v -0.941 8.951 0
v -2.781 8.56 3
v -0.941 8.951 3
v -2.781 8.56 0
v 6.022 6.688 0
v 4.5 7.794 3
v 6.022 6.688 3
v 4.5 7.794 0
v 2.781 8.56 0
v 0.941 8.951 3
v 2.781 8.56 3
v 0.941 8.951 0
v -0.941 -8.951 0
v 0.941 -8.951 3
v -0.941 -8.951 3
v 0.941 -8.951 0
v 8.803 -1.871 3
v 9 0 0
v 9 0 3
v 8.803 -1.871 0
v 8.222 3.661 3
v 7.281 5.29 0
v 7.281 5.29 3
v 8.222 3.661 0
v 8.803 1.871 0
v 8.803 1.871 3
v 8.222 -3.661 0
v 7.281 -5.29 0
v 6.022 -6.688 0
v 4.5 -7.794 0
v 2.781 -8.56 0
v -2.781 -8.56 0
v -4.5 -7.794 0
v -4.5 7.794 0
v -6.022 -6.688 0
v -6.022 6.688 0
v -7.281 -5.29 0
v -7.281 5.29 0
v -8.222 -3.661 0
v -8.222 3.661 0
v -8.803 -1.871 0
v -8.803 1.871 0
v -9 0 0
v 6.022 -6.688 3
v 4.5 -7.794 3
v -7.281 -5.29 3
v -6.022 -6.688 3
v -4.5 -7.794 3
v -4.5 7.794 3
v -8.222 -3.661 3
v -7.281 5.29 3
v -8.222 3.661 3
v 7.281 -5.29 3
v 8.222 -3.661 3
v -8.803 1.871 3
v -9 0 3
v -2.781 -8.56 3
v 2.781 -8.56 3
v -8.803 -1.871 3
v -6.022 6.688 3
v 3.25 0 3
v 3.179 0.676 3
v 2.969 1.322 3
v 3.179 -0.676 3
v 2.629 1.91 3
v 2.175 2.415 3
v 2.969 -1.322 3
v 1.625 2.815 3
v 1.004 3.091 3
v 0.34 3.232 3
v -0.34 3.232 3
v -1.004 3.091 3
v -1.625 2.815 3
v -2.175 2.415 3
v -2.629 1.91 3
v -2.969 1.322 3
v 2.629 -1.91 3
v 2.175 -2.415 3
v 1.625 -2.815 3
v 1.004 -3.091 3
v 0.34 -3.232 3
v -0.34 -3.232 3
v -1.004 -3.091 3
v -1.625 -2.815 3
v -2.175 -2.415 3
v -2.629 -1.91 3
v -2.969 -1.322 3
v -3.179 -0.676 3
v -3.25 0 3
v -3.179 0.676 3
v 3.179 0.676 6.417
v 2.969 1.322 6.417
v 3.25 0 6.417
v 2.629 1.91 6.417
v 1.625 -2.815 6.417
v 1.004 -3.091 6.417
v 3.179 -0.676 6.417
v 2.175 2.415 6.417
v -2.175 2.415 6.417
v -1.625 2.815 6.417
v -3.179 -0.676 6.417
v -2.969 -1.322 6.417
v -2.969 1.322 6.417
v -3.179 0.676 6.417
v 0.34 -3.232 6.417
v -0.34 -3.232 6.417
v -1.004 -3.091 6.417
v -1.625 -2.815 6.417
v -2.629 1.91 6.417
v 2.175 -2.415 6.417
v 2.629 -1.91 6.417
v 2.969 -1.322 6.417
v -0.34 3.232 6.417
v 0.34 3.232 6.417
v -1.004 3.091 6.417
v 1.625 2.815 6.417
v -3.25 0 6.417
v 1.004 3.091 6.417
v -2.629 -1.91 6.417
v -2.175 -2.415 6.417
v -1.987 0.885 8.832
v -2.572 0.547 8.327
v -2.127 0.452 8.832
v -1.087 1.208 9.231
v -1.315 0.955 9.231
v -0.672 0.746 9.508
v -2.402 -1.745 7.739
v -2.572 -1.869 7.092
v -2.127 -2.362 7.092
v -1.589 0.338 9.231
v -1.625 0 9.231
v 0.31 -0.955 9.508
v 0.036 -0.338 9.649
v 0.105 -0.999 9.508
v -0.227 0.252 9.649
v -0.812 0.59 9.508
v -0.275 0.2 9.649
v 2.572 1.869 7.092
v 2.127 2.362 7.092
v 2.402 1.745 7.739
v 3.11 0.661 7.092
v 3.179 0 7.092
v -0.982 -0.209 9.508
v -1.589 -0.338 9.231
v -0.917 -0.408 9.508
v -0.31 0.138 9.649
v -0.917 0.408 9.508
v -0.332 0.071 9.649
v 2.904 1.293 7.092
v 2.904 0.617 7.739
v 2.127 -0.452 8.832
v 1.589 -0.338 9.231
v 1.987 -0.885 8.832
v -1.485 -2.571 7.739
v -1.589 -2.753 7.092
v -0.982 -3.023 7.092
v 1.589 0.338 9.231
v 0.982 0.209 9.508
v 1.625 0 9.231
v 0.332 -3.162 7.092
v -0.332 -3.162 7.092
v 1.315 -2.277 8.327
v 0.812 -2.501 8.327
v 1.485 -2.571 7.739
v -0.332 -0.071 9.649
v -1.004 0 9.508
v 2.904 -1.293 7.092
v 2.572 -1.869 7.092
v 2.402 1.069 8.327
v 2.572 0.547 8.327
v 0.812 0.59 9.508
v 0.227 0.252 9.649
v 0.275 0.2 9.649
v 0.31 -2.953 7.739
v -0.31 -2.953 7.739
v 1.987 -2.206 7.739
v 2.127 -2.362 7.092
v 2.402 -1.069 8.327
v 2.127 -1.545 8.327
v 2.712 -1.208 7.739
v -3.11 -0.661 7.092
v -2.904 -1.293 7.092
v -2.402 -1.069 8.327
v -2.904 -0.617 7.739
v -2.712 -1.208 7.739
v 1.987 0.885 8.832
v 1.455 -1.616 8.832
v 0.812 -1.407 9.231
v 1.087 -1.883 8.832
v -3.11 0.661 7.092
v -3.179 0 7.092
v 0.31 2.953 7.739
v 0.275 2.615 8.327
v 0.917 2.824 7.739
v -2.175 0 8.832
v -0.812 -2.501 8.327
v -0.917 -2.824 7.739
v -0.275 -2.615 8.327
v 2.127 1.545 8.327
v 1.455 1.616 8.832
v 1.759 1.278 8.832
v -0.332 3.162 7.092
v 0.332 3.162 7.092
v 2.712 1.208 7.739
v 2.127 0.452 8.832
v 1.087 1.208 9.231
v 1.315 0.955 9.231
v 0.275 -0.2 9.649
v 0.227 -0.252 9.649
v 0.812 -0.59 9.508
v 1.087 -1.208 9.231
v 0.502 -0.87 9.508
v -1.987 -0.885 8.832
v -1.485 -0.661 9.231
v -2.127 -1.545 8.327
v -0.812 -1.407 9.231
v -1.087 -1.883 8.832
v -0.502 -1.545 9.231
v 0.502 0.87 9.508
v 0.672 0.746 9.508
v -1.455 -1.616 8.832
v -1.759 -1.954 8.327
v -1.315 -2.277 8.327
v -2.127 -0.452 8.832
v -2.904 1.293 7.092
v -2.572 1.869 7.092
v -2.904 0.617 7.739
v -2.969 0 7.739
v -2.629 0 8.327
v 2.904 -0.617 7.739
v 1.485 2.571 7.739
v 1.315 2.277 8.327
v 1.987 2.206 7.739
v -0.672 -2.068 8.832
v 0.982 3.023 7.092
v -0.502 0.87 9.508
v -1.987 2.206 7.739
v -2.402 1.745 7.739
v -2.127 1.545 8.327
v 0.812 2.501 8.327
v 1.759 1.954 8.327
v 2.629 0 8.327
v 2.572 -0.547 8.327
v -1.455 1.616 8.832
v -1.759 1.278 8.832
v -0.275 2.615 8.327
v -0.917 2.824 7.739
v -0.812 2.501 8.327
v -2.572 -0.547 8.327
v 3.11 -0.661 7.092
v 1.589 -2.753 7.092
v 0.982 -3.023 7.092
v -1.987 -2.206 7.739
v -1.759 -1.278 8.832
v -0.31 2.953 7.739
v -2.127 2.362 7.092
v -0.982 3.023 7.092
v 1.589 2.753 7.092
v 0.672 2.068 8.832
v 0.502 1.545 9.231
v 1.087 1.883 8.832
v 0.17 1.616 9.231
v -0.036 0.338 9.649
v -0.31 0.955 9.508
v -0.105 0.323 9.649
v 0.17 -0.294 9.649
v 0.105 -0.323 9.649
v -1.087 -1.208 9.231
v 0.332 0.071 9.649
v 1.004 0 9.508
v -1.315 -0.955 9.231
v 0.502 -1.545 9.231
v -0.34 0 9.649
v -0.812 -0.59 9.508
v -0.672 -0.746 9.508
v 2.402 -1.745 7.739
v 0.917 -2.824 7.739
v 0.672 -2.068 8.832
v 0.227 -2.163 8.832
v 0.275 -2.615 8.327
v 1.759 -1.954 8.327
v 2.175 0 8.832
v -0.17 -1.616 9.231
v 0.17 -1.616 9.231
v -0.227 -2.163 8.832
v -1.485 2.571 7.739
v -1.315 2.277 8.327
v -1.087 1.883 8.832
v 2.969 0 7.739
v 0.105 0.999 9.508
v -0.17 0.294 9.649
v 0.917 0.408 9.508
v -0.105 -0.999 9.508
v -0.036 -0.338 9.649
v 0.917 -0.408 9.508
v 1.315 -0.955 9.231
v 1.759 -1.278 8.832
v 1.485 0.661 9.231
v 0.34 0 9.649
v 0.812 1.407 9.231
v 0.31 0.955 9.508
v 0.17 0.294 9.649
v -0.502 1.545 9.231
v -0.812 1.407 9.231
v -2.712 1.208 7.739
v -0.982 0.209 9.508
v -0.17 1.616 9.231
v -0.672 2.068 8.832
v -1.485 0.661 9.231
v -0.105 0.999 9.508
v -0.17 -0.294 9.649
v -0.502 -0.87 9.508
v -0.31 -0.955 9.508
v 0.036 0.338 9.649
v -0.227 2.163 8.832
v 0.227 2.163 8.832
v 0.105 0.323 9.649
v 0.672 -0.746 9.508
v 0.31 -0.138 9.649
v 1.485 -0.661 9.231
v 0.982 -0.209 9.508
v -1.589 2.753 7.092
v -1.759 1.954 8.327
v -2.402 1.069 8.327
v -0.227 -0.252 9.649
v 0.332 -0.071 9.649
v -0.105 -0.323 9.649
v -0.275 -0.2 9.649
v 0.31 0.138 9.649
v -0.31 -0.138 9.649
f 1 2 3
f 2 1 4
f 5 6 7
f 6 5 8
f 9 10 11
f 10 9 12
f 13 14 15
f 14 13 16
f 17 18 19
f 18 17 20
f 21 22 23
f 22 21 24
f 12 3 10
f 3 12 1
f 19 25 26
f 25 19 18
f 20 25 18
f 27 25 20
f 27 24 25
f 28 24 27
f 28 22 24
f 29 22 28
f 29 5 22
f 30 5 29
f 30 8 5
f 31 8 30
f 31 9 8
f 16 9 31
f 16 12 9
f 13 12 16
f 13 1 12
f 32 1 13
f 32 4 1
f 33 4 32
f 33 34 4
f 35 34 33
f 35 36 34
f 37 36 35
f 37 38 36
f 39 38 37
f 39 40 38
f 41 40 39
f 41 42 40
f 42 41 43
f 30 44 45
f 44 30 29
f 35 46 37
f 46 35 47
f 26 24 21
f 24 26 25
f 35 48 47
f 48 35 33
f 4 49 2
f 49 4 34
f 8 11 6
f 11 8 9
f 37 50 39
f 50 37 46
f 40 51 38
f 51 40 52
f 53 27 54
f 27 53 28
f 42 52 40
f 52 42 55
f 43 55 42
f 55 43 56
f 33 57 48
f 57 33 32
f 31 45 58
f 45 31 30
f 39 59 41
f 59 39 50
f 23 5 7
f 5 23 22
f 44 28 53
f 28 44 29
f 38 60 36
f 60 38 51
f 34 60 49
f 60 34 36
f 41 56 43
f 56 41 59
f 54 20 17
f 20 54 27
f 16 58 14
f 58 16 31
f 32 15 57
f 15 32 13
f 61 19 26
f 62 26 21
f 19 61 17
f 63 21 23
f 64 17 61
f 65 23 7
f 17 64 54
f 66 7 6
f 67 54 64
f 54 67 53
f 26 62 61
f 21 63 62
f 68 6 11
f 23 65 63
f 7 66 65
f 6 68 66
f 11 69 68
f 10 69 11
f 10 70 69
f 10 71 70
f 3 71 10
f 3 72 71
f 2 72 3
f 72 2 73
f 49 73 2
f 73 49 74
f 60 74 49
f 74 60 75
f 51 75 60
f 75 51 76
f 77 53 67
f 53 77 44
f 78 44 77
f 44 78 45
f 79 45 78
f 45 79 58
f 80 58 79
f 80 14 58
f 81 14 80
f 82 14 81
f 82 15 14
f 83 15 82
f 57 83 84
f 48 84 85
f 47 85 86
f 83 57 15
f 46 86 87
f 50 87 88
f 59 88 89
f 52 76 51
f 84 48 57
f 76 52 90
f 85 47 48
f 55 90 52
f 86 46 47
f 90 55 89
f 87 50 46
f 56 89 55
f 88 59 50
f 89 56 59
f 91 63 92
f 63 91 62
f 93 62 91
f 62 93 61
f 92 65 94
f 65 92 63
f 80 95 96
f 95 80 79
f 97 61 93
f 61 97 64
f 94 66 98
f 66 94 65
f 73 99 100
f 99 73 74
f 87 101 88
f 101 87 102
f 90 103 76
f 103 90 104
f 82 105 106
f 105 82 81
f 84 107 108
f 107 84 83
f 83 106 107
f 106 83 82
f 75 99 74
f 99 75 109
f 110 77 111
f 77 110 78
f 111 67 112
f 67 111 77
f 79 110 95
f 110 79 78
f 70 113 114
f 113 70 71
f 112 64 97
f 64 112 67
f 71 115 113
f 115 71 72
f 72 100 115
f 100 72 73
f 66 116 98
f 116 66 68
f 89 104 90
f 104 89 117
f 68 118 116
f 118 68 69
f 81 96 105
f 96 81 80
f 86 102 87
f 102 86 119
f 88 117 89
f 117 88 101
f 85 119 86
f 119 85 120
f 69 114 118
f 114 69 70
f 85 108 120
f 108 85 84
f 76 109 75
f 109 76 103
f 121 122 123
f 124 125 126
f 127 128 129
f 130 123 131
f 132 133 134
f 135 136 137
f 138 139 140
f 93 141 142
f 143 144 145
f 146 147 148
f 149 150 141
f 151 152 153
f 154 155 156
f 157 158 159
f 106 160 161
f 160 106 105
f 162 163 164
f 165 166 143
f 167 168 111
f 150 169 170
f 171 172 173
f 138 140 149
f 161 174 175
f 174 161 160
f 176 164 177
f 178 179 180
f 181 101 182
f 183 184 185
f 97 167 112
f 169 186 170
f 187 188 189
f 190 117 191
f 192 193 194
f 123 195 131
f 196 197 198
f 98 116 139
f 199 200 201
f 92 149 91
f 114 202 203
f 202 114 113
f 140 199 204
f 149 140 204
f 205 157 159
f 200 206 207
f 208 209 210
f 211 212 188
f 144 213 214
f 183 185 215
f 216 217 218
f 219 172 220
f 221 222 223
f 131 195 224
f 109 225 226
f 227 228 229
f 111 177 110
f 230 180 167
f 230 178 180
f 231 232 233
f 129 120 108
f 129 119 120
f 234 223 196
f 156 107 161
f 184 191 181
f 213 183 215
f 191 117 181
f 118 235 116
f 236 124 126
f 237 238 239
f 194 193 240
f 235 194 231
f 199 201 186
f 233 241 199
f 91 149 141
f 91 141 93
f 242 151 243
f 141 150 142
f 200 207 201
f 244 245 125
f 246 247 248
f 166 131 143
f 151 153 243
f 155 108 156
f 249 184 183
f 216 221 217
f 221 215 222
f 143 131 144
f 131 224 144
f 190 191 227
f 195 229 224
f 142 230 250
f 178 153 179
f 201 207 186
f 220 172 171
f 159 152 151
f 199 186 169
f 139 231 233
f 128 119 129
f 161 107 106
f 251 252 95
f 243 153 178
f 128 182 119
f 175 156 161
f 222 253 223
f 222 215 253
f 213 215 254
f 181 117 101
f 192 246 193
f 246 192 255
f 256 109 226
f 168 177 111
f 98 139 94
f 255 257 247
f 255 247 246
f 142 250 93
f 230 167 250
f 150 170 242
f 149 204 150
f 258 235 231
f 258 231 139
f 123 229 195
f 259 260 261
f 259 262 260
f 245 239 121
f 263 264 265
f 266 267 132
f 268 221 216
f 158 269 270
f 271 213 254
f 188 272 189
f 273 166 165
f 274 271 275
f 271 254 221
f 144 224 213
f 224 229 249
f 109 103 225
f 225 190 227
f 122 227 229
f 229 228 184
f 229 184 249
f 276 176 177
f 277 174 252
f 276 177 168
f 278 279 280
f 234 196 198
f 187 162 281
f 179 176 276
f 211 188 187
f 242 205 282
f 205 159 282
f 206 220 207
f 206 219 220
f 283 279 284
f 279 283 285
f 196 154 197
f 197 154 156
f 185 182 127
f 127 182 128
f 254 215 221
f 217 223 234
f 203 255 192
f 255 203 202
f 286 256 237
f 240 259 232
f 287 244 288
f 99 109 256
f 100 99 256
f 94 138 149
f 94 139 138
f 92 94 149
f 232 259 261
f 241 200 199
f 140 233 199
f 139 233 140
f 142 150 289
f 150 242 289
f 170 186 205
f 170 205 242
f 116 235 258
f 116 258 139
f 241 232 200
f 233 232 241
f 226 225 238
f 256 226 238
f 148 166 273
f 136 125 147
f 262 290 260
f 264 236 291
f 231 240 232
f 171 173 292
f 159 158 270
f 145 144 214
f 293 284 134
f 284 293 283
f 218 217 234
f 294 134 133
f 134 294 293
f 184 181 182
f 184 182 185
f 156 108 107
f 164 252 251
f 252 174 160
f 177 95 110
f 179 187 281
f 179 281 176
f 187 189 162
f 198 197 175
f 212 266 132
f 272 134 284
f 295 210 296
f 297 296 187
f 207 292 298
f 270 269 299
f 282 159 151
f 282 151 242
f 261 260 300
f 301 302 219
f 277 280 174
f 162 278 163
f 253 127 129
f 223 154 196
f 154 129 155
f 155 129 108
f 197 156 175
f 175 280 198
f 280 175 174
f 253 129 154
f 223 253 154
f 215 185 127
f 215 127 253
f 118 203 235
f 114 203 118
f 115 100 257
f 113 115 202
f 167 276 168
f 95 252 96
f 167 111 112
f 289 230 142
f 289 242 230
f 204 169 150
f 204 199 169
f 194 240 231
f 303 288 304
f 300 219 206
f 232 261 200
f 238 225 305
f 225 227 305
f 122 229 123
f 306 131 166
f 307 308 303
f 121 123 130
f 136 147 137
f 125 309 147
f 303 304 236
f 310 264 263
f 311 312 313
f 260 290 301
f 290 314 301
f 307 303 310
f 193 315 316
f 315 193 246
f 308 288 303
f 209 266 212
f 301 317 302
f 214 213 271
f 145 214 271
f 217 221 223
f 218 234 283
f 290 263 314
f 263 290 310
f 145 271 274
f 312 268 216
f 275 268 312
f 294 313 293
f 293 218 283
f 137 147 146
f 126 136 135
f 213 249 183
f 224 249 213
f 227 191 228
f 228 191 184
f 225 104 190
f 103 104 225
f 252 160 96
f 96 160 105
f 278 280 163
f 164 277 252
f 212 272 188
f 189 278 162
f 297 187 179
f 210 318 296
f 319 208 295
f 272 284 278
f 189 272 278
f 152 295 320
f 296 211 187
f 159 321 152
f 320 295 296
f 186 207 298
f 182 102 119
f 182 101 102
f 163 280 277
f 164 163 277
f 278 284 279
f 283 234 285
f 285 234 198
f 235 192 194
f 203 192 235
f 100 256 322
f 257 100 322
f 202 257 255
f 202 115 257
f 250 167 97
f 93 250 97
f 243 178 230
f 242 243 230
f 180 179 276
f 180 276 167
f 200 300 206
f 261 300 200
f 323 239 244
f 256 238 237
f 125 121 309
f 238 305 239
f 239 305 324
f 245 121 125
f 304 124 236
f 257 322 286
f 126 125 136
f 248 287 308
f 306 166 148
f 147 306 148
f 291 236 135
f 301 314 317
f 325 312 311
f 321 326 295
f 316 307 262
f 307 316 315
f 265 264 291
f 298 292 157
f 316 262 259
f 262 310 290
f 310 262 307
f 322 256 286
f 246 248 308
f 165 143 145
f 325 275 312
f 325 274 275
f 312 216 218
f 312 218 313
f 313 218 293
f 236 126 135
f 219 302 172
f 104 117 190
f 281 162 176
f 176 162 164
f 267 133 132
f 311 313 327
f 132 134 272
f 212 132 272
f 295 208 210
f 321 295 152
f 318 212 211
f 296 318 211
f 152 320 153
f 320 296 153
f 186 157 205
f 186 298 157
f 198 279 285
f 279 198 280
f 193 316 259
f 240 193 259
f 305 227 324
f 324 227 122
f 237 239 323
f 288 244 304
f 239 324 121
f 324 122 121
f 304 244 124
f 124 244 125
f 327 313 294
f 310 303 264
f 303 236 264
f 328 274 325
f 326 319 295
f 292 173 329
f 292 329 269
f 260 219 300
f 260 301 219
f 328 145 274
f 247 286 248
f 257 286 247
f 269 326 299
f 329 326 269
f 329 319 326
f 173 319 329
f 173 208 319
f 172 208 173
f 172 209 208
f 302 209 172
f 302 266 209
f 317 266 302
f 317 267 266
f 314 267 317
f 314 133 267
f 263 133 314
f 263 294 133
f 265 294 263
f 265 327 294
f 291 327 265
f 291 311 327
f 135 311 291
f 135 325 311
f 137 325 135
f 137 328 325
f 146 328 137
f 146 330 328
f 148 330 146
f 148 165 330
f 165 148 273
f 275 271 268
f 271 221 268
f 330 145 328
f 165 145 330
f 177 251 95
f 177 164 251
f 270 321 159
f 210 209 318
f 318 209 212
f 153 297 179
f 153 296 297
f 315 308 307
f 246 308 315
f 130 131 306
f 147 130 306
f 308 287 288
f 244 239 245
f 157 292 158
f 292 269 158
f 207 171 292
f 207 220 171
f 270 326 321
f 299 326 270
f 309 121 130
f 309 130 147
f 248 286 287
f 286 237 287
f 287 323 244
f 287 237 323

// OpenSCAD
// file: CommonModules.scad
//    $$$$$$\   $$$$$$\   $$$$$$\  $$\   $$\ $$$$$$\ $$$$$$$\  $$$$$$$$\ 
//    $$  __$$\ $$  __$$\ $$  __$$\ $$ |  $$ |\_$$  _|$$  __$$\ $$  _____|
//    $$ /  $$ |$$ /  \__|$$ /  $$ |$$ |  $$ |  $$ |  $$ |  $$ |$$ |      
//    $$$$$$$$ |$$ |      $$ |  $$ |$$ |  $$ |  $$ |  $$$$$$$  |$$$$$\    
//    $$  __$$ |$$ |      $$ |  $$ |$$ |  $$ |  $$ |  $$  __$$< $$  __|   
//    $$ |  $$ |$$ |  $$\ $$ $$\$$ |$$ |  $$ |  $$ |  $$ |  $$ |$$ |      
//    $$ |  $$ |\$$$$$$  |\$$$$$$ / \$$$$$$  |$$$$$$\ $$ |  $$ |$$$$$$$$\ 
//    \__|  \__| \______/  \___$$$\  \______/ \______|\__|  \__|\________|
//                            \___|                                      
//      
//       Print and play - OpenScad project - by Bekkalizer - GPLv3
// 
// This file is part of the Acquire stl project.
// Copyright (C) 2025 Bekkalizer
//
// Acquire stl project is free software: you can redistribute it and/or modify
// it under the terms of the GNU General Public License as published
// by the Free Software Foundation, either version 3 of the License,
// or (at your option) any later version.
//
// Acquire stl project is distributed in the hope that it will be useful,
// but WITHOUT ANY WARRANTY; without even the implied warranty of
// MERCHANTABILITY or FITNESS FOR A PARTICULAR PURPOSE. See the
// GNU General Public License for more details.
//
// You should have received a copy of the GNU General Public License
// along with this program. If not, see <https://www.gnu.org/licenses/>.

module cube_with_extruded_bottom( cube_size = [19.5, 19.5, 5] ) {
    //Main build script parameters:
    max_width = 19.2;
    top_lip = 2;
    top_height = 3;
    //Calculated hole size:
    inside_margins = 1;
    hole_width = max_width - 2 * (top_lip) + inside_margins;
    hole_height = top_height + inside_margins;
    
    hole_size = [hole_width, hole_width, hole_height]; // Hole dimensions (same height as cube)
    hole_offset = [(cube_size[0] - hole_size[0]) / 2, (cube_size[1] - hole_size[1]) / 2, -0.1]; // Centered on bottom
    difference() {
        // Main Cube
        cube(cube_size);
        
        // Hole Cube (subtracting from bottom)
        translate(hole_offset)
            cube(hole_size);
    }
}
// main file
//    $$$$$$\   $$$$$$\   $$$$$$\  $$\   $$\ $$$$$$\ $$$$$$$\  $$$$$$$$\
//    $$  __$$\ $$  __$$\ $$  __$$\ $$ |  $$ |\_$$  _|$$  __$$\ $$  _____|
//    $$ /  $$ |$$ /  \__|$$ /  $$ |$$ |  $$ |  $$ |  $$ |  $$ |$$ |
//    $$$$$$$$ |$$ |      $$ |  $$ |$$ |  $$ |  $$ |  $$$$$$$  |$$$$$\
//    $$  __$$ |$$ |      $$ |  $$ |$$ |  $$ |  $$ |  $$  __$$< $$  __|
//    $$ |  $$ |$$ |  $$\ $$ $$\$$ |$$ |  $$ |  $$ |  $$ |  $$ |$$ |
//    $$ |  $$ |\$$$$$$  |\$$$$$$ / \$$$$$$  |$$$$$$\ $$ |  $$ |$$$$$$$$\
//    \__|  \__| \______/  \___$$$\  \______/ \______|\__|  \__|\________|
//                            \___|
//
//       Print and play - OpenScad project - by Bekkalizer and Claude
//
// This file is part of the Acquire stl project.
// Copyright (C) 2025 Bekkalizer
//
// Acquire stl project is free software: you can redistribute it and/or modify
// it under the terms of the GNU General Public License as published
// by the Free Software Foundation, either version 3 of the License,
// or (at your option) any later version.
//
// Acquire stl project is distributed in the hope that it will be useful,
// but WITHOUT ANY WARRANTY; without even the implied warranty of
// MERCHANTABILITY or FITNESS FOR A PARTICULAR PURPOSE. See the
// GNU General Public License for more details.
//
// You should have received a copy of the GNU General Public License
// along with this program. If not, see <https://www.gnu.org/licenses/>.

use <CommonModules.scad>

// ============== Parameters ==============
$fn = 30;

scale_factor = 1/3;

base_radius = 9;
base_height = 3;

dome_radius = 9.75 * scale_factor;                          // ~3.25
cylinder_height = (25 - 9.75 - 5) * scale_factor;          // ~3.42

union() {
    cylinder(h = base_height, r = base_radius);
    translate([0, 0, base_height])
        cylinder(h = cylinder_height, r = dome_radius);
    translate([0, 0, base_height + cylinder_height])
        sphere(dome_radius);
}
